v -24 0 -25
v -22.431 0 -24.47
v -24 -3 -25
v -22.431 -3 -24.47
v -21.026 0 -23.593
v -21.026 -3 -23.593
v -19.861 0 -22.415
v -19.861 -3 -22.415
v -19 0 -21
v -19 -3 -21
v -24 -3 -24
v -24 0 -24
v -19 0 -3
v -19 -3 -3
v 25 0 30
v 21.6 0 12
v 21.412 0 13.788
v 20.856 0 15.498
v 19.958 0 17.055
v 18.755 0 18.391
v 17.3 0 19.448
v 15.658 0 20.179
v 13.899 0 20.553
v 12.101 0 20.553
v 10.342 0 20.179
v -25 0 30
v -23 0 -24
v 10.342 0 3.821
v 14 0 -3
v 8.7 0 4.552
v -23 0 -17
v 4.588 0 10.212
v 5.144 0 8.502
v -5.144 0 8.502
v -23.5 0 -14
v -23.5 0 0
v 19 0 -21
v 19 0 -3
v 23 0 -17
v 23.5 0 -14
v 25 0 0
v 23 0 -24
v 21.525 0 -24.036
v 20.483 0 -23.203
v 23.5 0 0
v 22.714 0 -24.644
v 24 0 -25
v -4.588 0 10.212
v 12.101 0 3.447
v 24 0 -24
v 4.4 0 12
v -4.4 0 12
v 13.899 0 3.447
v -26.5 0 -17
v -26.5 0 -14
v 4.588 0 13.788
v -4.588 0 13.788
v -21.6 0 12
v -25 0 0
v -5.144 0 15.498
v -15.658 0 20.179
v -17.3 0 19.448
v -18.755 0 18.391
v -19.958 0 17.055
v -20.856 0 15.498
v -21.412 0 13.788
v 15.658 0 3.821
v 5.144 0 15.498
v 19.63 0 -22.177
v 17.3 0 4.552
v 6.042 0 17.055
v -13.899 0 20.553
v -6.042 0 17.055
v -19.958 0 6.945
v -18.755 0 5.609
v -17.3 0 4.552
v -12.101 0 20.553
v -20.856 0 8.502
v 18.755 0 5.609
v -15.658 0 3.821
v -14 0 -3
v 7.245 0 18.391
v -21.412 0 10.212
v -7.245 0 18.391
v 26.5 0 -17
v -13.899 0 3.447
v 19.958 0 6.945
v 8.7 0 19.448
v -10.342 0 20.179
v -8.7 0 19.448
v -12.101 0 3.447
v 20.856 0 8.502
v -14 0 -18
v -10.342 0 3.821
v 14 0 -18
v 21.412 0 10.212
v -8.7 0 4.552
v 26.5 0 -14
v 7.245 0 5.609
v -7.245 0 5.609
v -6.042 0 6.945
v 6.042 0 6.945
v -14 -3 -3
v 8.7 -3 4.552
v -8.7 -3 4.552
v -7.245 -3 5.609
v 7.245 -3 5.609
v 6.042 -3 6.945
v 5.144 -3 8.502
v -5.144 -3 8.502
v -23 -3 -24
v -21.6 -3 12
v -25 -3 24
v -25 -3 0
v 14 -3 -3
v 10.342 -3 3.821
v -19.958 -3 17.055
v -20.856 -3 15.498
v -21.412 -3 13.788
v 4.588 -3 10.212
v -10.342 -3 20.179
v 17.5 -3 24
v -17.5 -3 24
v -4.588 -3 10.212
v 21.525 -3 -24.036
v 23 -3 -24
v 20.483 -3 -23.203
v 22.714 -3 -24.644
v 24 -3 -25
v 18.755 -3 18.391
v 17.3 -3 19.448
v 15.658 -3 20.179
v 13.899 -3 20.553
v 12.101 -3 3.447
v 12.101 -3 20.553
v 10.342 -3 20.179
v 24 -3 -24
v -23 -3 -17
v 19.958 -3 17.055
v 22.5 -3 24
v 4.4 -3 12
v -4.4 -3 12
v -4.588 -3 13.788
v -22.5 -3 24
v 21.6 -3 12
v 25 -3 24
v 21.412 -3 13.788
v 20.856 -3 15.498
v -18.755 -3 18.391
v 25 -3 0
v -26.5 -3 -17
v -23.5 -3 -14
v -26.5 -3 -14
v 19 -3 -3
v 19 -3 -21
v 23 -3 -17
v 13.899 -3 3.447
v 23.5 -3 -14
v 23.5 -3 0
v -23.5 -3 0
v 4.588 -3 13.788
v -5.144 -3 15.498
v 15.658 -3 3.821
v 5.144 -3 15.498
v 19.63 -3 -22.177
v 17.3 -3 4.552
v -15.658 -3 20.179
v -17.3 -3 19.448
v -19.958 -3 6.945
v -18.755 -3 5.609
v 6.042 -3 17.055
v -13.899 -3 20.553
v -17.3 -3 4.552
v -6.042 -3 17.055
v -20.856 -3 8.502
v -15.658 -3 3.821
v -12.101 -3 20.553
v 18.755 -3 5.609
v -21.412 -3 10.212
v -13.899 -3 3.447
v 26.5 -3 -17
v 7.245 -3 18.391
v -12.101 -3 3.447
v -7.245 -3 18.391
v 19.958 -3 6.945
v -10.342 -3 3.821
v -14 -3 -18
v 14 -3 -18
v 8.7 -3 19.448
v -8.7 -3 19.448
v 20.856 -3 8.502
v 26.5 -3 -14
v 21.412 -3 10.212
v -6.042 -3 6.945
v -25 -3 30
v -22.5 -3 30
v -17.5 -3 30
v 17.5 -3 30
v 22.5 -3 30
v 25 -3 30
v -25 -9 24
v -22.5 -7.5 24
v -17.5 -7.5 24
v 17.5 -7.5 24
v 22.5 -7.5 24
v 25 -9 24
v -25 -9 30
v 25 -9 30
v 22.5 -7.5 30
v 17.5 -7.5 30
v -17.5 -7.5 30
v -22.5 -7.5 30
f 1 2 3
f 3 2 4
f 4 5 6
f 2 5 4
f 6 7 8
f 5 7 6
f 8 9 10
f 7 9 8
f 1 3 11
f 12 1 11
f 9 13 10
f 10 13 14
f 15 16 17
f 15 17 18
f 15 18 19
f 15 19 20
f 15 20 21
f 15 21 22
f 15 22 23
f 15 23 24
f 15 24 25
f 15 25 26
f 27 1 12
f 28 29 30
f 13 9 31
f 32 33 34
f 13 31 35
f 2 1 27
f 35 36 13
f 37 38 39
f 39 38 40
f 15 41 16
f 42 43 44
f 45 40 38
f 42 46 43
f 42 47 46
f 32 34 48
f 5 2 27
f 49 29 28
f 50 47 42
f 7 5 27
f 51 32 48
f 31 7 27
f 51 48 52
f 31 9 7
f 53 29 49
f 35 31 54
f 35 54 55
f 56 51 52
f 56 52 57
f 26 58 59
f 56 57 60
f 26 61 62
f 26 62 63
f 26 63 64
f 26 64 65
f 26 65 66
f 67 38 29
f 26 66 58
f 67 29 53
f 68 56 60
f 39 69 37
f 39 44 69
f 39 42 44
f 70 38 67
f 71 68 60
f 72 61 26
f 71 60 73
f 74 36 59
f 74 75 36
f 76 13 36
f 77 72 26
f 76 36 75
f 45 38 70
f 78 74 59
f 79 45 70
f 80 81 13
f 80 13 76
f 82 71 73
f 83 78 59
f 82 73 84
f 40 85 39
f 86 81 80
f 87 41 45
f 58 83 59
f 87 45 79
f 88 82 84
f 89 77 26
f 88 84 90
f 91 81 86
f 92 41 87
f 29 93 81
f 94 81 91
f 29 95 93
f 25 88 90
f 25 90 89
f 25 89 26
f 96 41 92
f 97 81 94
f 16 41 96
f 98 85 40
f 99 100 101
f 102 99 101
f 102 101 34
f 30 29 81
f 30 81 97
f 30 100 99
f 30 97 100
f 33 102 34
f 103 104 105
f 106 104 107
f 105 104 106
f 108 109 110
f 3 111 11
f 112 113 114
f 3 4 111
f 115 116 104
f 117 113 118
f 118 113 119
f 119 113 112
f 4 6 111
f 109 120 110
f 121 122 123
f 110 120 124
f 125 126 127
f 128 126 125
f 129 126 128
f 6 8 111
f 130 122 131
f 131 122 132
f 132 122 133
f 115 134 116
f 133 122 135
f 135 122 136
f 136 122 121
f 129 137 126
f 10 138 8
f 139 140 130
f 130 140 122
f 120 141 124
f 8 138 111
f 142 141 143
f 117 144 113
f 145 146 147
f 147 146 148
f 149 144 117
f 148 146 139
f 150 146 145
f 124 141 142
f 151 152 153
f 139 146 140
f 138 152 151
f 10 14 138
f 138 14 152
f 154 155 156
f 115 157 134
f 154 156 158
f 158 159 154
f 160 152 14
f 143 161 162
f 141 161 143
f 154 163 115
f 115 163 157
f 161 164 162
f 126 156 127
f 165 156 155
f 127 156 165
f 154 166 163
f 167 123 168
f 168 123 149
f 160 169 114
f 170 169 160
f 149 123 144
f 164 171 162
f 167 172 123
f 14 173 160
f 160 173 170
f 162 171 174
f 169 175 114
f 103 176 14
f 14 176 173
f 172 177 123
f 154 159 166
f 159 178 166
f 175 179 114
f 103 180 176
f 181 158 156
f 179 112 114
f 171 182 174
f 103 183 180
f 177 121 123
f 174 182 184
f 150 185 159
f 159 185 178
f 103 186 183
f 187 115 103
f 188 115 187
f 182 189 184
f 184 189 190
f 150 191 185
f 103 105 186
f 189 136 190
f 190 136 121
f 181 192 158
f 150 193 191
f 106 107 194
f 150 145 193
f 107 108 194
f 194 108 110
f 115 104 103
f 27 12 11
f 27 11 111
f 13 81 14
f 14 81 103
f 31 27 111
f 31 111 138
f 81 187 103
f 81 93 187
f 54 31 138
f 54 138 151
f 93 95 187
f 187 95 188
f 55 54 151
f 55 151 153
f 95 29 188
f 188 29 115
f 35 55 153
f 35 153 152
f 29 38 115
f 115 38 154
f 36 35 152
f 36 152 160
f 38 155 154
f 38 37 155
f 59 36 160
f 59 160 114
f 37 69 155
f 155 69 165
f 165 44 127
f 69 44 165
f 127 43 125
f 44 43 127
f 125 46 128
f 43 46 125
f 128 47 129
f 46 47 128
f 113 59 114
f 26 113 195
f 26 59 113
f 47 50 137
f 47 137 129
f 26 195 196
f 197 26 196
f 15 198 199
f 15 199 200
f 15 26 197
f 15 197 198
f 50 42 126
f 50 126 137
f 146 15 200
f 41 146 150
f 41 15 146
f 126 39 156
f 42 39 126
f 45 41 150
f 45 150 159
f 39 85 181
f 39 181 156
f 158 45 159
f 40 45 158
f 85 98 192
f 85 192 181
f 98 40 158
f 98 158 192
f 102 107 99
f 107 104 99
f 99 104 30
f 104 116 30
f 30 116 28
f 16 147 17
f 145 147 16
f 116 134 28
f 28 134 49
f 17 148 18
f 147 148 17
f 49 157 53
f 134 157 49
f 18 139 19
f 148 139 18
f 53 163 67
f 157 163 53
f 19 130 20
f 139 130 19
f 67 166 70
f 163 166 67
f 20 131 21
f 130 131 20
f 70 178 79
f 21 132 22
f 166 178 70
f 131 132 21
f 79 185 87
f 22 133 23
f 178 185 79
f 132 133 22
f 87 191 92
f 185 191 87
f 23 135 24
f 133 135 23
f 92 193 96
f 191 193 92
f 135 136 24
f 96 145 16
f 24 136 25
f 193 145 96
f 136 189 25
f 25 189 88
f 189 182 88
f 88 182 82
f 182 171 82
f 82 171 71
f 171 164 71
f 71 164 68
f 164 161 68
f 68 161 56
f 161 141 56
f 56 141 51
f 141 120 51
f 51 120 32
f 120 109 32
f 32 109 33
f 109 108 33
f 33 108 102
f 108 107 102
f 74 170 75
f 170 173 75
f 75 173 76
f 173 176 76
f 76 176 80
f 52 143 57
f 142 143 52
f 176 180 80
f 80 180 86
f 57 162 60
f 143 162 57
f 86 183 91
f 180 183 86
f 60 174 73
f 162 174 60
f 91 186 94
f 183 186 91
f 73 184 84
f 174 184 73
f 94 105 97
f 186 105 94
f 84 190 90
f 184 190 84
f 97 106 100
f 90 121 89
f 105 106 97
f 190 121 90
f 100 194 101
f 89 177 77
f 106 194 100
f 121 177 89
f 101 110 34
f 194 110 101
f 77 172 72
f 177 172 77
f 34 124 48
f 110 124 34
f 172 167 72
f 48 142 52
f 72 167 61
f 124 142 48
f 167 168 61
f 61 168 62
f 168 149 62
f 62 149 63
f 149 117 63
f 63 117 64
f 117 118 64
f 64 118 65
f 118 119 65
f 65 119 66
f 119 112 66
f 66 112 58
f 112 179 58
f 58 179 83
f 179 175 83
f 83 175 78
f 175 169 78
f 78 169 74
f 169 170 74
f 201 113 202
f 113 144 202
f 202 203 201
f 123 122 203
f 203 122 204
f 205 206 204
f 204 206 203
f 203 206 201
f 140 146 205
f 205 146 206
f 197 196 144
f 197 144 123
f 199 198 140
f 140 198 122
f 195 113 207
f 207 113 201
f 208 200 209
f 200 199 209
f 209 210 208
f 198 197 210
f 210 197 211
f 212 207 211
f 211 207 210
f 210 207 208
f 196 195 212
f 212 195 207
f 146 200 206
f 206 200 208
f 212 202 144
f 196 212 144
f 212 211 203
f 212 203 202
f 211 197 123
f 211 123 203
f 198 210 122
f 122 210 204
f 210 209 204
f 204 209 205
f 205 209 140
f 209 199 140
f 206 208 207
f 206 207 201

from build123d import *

# Parameters (mm, degrees)
PAD_DEPTH       = 3
SKETCH001_R     = 8.6
POCKET_DEPTH    = 3.001
SKETCH002_W     = 50
SKETCH002_H     = 6
PAD001_DEPTH    = 6
SKETCH003_W     = 5
SKETCH003_H     = 4.5
POCKET001_DEPTH = 6


with BuildPart() as part:
    # Sketch → Pad (new body)
    with BuildSketch(Plane.XZ):
        with BuildLine():
            Line((-24, -25), (-24, -24))
            Line((-24, -24), (-23, -24))
            Line((-23, -24), (-23, -17))
            Line((-23, -17), (-26.5, -17))
            Line((-26.5, -17), (-26.5, -14))
            Line((-26.5, -14), (-23.5, -14))
            Line((-23.5, -14), (-23.5, 0))
            Line((-23.5, 0), (-25, 0))
            Line((-25, 0), (-25, 30))
            Line((-25, 30), (25, 30))
            Line((25, 30), (25, 0))
            Line((25, 0), (23.5, 0))
            Line((23.5, 0), (23.5, -14))
            Line((23.5, -14), (26.5, -14))
            Line((26.5, -14), (26.5, -17))
            Line((26.5, -17), (23, -17))
            Line((23, -17), (23, -24))
            Line((23, -24), (24, -24))
            Line((24, -24), (24, -25))
            ThreePointArc((19, -21), (20.983324, -23.645845), (24, -25))
            Line((19, -3), (19, -21))
            Line((14, -3), (19, -3))
            Line((14, -18), (14, -3))
            Line((-14, -18), (14, -18))
            Line((-14, -3), (-14, -18))
            Line((-19, -3), (-14, -3))
            Line((-19, -21), (-19, -3))
            ThreePointArc((-24, -25), (-21.025722, -23.592847), (-19, -21))
        make_face()
    extrude(amount=PAD_DEPTH)

    # Sketch001 (on Face30 of Pad) → Pocket (cut, through all)
    with BuildSketch(Plane.XZ.offset(3)):
        with Locations((-13, 12)):
            Circle(SKETCH001_R)
        with Locations((13, 12)):
            Circle(SKETCH001_R)
    extrude(amount=-POCKET_DEPTH, mode=Mode.SUBTRACT)

    # Sketch002 (on Face5 of Pocket) → Pad001 (join)
    with BuildSketch(Plane.XZ.offset(3)):
        with Locations((0, 27)):
            Rectangle(SKETCH002_W, SKETCH002_H)
    extrude(amount=PAD001_DEPTH)

    # Sketch003 (on Face35 of Pad001) → Pocket001 (cut)
    with BuildSketch(Plane(origin=(0, 0, 30), x_dir=(-1, 0, 0), z_dir=(0, 0, 1))):
        with Locations((-20, 5.25)):
            Rectangle(SKETCH003_W, SKETCH003_H)
        with Locations((20, 5.25)):
            Rectangle(SKETCH003_W, SKETCH003_H)
    extrude(amount=-POCKET001_DEPTH, mode=Mode.SUBTRACT)


solid = part.part
